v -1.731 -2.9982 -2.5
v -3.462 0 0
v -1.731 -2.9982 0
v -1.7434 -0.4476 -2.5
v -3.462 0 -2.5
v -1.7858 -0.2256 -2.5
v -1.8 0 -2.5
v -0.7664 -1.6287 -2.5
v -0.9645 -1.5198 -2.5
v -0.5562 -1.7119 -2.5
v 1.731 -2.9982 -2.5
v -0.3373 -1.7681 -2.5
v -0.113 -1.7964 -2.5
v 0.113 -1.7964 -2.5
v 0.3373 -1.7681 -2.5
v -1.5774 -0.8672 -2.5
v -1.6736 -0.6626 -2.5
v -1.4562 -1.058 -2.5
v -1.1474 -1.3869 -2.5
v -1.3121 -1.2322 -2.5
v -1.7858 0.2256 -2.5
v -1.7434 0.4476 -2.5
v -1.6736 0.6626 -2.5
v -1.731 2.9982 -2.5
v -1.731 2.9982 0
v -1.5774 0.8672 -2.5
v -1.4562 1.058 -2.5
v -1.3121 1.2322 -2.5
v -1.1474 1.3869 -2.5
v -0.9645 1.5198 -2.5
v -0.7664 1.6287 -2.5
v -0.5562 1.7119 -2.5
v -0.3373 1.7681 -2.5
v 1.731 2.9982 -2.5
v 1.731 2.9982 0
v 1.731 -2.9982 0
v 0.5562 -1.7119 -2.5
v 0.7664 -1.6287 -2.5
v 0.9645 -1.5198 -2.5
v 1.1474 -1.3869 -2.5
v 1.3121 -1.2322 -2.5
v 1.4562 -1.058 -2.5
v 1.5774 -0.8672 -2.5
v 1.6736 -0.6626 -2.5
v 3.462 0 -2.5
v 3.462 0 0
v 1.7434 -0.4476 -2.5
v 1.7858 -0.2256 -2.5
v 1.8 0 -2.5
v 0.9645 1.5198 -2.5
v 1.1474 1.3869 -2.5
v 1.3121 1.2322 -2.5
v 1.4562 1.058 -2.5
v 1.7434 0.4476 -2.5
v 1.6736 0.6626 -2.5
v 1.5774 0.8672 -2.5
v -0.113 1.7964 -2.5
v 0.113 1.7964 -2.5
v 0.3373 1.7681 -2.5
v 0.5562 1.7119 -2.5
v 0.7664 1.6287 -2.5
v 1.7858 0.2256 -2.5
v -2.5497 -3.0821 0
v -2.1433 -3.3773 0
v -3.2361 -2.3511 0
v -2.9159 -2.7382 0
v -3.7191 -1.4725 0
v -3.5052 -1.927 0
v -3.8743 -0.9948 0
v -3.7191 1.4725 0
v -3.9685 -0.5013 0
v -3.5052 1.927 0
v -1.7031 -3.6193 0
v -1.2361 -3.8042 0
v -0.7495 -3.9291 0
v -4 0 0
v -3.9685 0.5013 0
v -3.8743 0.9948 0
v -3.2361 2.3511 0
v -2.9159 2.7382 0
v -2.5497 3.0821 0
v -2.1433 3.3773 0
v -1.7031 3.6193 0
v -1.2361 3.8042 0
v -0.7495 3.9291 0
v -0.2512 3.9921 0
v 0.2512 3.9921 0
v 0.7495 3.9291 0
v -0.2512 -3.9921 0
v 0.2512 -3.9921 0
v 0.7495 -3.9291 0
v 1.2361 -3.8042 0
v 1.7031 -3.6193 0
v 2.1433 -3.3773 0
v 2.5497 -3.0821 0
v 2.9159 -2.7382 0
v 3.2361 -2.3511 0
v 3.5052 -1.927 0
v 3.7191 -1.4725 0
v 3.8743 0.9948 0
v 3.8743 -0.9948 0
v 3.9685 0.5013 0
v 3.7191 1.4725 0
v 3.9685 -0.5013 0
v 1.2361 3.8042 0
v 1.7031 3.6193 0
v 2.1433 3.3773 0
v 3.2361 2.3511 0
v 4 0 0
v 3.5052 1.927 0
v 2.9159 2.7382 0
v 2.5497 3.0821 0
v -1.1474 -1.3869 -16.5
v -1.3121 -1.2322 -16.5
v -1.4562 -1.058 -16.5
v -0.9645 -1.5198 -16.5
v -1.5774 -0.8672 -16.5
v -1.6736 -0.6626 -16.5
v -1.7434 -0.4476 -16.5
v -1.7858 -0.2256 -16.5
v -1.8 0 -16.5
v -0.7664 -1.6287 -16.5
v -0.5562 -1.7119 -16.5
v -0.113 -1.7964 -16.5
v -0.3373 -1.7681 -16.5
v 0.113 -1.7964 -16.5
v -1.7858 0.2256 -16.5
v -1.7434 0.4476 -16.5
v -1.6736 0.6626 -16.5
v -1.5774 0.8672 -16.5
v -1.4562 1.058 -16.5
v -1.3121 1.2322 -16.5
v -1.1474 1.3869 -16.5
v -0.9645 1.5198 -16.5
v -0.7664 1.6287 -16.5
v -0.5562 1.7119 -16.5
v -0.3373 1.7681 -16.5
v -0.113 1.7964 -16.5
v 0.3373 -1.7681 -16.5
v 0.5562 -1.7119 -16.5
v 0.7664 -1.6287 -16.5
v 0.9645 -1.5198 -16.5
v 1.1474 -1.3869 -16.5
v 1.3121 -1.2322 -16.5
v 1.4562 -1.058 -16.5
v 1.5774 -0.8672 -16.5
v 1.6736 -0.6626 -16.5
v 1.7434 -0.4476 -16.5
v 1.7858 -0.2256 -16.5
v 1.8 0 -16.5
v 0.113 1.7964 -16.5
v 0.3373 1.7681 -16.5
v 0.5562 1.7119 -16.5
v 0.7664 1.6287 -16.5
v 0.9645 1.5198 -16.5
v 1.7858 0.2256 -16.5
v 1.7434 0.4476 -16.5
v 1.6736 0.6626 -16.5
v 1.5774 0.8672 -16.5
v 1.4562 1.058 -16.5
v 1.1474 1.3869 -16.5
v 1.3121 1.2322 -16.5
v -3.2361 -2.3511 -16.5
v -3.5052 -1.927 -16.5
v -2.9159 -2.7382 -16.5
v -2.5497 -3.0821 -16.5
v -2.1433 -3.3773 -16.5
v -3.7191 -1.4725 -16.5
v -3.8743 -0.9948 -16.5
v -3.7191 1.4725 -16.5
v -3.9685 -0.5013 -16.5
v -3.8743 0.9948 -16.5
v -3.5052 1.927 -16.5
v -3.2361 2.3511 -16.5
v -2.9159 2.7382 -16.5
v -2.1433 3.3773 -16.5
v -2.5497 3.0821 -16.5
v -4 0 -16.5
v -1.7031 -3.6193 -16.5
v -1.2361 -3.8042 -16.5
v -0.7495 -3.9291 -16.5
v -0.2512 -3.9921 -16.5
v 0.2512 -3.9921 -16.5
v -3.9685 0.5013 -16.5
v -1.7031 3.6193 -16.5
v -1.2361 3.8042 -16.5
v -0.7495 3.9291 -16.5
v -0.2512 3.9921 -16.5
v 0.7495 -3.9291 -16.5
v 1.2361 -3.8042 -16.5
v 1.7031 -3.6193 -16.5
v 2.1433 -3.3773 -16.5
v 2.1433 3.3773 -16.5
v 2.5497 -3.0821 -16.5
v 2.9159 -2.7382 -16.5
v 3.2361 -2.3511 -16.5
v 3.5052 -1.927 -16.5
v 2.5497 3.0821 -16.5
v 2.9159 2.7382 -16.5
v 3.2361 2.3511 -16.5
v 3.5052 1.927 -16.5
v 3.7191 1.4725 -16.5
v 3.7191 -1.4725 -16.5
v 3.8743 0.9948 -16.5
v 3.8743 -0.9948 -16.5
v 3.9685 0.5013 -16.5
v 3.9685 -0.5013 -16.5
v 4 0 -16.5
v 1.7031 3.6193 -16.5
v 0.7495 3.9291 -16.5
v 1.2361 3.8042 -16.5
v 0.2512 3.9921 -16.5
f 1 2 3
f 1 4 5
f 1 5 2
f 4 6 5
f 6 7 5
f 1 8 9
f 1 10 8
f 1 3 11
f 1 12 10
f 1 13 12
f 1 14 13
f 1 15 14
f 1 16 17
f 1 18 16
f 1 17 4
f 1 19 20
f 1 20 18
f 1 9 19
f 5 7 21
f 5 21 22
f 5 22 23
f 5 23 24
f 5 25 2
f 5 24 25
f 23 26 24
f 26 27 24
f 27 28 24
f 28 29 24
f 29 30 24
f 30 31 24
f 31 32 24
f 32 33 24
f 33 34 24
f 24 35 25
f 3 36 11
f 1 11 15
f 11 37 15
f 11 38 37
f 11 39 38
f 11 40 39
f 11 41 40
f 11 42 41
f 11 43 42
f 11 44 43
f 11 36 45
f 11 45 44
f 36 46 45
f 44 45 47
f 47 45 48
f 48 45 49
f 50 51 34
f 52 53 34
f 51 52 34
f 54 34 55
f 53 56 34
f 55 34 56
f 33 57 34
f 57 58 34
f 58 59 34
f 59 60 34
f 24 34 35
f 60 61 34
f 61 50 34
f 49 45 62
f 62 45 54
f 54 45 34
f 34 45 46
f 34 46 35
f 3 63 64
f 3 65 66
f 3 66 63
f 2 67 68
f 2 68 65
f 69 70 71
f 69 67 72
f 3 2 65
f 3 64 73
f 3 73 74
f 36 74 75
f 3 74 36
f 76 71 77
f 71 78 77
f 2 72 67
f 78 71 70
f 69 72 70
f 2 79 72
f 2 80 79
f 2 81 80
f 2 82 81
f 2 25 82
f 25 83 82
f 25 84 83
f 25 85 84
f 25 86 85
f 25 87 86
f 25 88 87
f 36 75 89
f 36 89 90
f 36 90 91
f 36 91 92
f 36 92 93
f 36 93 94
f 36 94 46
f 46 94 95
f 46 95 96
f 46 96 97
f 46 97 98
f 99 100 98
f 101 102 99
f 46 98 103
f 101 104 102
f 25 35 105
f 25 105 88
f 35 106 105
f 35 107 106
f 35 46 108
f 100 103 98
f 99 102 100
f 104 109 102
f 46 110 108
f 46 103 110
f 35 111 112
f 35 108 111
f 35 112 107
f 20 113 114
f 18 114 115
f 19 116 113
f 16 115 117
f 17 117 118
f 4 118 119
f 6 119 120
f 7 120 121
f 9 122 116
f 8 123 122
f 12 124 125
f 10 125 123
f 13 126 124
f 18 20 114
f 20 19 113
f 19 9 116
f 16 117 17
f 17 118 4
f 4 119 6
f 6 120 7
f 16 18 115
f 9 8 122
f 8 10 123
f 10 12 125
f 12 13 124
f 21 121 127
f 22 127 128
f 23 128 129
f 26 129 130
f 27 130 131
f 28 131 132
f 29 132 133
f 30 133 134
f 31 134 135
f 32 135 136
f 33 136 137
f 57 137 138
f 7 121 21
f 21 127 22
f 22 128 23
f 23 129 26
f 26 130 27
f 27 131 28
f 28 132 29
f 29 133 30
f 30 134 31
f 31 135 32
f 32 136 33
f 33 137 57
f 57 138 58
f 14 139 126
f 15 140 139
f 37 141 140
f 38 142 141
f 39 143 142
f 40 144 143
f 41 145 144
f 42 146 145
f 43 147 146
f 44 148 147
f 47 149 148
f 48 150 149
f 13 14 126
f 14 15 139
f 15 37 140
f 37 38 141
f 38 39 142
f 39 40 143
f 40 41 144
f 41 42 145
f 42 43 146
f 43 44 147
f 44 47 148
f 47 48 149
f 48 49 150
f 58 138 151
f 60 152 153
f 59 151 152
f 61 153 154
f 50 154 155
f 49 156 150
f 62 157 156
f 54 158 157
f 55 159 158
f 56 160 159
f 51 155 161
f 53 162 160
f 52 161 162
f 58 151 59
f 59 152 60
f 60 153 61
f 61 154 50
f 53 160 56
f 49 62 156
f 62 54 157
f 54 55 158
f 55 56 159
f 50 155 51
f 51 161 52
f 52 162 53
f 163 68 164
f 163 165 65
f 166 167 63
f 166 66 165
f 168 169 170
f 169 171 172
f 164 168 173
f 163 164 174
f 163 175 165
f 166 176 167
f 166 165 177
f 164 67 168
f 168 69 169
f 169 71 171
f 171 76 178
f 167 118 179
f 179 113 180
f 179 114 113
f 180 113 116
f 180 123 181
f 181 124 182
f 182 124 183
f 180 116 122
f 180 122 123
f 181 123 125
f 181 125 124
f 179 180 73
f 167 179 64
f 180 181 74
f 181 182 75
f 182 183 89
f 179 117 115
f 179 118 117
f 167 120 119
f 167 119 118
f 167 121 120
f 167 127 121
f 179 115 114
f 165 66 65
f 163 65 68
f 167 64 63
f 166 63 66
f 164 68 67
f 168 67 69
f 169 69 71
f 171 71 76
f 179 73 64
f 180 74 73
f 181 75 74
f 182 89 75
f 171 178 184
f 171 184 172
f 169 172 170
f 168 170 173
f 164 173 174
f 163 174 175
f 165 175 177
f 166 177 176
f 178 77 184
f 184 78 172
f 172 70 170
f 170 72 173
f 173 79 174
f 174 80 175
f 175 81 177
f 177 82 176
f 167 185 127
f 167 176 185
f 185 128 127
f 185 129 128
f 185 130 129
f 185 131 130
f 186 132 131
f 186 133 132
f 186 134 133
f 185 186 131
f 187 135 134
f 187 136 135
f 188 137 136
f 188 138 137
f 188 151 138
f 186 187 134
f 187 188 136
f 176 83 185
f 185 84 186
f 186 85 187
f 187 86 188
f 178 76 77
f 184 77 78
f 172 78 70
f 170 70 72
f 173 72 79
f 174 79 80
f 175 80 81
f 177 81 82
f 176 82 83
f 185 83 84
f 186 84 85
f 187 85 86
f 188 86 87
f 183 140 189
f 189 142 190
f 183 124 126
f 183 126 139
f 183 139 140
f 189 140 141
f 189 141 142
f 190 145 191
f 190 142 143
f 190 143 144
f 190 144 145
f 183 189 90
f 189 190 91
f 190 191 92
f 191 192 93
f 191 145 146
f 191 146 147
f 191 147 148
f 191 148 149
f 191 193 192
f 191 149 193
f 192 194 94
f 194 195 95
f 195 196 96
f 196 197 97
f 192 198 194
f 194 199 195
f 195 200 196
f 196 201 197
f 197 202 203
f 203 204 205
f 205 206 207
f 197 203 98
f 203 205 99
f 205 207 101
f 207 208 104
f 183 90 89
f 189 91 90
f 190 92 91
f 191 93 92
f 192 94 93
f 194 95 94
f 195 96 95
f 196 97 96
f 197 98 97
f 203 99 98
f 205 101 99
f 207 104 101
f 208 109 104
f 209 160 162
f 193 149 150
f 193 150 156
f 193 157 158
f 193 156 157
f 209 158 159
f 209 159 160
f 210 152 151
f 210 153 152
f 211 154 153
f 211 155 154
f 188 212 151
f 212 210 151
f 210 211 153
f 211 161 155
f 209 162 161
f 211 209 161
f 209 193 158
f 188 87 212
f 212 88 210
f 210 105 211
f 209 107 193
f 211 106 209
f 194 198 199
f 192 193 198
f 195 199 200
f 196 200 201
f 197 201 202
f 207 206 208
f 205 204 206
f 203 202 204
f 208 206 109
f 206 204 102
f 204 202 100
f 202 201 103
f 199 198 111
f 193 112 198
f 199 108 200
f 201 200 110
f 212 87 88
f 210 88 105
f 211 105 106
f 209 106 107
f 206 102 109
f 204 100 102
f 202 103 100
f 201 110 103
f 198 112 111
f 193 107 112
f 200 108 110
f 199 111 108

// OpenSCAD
$fn = 50;

difference() {
	union() {
		translate(v = [0, 0, -16.5]) {
			cylinder(h = 19.5, r = 4.0);
		}
	}
	union() {
		translate(v = [0, 0, 0]) {
			rotate(a = [0, 0, 0]) {
				difference() {
					union() {
						translate(v = [0, 0, -2.5]) {
							linear_extrude(height = 2.5) {
								polygon(points = [[3.4619999999999997, 0.0], [1.7310000000000003, 2.9981799479017264], [-1.7309999999999992, 2.9981799479017264], [-3.4619999999999997, 4.2397272186481365e-16], [-1.7310000000000014, -2.998179947901726], [1.7309999999999977, -2.9981799479017277]]);
							}
						}
					}
					union();
				}
			}
		}
		#cylinder(h = 3, r = 5.0);
		#translate(v = [0, 0, -100.0]) {
			cylinder(h = 200, r = 1.8);
		}
	}
}
